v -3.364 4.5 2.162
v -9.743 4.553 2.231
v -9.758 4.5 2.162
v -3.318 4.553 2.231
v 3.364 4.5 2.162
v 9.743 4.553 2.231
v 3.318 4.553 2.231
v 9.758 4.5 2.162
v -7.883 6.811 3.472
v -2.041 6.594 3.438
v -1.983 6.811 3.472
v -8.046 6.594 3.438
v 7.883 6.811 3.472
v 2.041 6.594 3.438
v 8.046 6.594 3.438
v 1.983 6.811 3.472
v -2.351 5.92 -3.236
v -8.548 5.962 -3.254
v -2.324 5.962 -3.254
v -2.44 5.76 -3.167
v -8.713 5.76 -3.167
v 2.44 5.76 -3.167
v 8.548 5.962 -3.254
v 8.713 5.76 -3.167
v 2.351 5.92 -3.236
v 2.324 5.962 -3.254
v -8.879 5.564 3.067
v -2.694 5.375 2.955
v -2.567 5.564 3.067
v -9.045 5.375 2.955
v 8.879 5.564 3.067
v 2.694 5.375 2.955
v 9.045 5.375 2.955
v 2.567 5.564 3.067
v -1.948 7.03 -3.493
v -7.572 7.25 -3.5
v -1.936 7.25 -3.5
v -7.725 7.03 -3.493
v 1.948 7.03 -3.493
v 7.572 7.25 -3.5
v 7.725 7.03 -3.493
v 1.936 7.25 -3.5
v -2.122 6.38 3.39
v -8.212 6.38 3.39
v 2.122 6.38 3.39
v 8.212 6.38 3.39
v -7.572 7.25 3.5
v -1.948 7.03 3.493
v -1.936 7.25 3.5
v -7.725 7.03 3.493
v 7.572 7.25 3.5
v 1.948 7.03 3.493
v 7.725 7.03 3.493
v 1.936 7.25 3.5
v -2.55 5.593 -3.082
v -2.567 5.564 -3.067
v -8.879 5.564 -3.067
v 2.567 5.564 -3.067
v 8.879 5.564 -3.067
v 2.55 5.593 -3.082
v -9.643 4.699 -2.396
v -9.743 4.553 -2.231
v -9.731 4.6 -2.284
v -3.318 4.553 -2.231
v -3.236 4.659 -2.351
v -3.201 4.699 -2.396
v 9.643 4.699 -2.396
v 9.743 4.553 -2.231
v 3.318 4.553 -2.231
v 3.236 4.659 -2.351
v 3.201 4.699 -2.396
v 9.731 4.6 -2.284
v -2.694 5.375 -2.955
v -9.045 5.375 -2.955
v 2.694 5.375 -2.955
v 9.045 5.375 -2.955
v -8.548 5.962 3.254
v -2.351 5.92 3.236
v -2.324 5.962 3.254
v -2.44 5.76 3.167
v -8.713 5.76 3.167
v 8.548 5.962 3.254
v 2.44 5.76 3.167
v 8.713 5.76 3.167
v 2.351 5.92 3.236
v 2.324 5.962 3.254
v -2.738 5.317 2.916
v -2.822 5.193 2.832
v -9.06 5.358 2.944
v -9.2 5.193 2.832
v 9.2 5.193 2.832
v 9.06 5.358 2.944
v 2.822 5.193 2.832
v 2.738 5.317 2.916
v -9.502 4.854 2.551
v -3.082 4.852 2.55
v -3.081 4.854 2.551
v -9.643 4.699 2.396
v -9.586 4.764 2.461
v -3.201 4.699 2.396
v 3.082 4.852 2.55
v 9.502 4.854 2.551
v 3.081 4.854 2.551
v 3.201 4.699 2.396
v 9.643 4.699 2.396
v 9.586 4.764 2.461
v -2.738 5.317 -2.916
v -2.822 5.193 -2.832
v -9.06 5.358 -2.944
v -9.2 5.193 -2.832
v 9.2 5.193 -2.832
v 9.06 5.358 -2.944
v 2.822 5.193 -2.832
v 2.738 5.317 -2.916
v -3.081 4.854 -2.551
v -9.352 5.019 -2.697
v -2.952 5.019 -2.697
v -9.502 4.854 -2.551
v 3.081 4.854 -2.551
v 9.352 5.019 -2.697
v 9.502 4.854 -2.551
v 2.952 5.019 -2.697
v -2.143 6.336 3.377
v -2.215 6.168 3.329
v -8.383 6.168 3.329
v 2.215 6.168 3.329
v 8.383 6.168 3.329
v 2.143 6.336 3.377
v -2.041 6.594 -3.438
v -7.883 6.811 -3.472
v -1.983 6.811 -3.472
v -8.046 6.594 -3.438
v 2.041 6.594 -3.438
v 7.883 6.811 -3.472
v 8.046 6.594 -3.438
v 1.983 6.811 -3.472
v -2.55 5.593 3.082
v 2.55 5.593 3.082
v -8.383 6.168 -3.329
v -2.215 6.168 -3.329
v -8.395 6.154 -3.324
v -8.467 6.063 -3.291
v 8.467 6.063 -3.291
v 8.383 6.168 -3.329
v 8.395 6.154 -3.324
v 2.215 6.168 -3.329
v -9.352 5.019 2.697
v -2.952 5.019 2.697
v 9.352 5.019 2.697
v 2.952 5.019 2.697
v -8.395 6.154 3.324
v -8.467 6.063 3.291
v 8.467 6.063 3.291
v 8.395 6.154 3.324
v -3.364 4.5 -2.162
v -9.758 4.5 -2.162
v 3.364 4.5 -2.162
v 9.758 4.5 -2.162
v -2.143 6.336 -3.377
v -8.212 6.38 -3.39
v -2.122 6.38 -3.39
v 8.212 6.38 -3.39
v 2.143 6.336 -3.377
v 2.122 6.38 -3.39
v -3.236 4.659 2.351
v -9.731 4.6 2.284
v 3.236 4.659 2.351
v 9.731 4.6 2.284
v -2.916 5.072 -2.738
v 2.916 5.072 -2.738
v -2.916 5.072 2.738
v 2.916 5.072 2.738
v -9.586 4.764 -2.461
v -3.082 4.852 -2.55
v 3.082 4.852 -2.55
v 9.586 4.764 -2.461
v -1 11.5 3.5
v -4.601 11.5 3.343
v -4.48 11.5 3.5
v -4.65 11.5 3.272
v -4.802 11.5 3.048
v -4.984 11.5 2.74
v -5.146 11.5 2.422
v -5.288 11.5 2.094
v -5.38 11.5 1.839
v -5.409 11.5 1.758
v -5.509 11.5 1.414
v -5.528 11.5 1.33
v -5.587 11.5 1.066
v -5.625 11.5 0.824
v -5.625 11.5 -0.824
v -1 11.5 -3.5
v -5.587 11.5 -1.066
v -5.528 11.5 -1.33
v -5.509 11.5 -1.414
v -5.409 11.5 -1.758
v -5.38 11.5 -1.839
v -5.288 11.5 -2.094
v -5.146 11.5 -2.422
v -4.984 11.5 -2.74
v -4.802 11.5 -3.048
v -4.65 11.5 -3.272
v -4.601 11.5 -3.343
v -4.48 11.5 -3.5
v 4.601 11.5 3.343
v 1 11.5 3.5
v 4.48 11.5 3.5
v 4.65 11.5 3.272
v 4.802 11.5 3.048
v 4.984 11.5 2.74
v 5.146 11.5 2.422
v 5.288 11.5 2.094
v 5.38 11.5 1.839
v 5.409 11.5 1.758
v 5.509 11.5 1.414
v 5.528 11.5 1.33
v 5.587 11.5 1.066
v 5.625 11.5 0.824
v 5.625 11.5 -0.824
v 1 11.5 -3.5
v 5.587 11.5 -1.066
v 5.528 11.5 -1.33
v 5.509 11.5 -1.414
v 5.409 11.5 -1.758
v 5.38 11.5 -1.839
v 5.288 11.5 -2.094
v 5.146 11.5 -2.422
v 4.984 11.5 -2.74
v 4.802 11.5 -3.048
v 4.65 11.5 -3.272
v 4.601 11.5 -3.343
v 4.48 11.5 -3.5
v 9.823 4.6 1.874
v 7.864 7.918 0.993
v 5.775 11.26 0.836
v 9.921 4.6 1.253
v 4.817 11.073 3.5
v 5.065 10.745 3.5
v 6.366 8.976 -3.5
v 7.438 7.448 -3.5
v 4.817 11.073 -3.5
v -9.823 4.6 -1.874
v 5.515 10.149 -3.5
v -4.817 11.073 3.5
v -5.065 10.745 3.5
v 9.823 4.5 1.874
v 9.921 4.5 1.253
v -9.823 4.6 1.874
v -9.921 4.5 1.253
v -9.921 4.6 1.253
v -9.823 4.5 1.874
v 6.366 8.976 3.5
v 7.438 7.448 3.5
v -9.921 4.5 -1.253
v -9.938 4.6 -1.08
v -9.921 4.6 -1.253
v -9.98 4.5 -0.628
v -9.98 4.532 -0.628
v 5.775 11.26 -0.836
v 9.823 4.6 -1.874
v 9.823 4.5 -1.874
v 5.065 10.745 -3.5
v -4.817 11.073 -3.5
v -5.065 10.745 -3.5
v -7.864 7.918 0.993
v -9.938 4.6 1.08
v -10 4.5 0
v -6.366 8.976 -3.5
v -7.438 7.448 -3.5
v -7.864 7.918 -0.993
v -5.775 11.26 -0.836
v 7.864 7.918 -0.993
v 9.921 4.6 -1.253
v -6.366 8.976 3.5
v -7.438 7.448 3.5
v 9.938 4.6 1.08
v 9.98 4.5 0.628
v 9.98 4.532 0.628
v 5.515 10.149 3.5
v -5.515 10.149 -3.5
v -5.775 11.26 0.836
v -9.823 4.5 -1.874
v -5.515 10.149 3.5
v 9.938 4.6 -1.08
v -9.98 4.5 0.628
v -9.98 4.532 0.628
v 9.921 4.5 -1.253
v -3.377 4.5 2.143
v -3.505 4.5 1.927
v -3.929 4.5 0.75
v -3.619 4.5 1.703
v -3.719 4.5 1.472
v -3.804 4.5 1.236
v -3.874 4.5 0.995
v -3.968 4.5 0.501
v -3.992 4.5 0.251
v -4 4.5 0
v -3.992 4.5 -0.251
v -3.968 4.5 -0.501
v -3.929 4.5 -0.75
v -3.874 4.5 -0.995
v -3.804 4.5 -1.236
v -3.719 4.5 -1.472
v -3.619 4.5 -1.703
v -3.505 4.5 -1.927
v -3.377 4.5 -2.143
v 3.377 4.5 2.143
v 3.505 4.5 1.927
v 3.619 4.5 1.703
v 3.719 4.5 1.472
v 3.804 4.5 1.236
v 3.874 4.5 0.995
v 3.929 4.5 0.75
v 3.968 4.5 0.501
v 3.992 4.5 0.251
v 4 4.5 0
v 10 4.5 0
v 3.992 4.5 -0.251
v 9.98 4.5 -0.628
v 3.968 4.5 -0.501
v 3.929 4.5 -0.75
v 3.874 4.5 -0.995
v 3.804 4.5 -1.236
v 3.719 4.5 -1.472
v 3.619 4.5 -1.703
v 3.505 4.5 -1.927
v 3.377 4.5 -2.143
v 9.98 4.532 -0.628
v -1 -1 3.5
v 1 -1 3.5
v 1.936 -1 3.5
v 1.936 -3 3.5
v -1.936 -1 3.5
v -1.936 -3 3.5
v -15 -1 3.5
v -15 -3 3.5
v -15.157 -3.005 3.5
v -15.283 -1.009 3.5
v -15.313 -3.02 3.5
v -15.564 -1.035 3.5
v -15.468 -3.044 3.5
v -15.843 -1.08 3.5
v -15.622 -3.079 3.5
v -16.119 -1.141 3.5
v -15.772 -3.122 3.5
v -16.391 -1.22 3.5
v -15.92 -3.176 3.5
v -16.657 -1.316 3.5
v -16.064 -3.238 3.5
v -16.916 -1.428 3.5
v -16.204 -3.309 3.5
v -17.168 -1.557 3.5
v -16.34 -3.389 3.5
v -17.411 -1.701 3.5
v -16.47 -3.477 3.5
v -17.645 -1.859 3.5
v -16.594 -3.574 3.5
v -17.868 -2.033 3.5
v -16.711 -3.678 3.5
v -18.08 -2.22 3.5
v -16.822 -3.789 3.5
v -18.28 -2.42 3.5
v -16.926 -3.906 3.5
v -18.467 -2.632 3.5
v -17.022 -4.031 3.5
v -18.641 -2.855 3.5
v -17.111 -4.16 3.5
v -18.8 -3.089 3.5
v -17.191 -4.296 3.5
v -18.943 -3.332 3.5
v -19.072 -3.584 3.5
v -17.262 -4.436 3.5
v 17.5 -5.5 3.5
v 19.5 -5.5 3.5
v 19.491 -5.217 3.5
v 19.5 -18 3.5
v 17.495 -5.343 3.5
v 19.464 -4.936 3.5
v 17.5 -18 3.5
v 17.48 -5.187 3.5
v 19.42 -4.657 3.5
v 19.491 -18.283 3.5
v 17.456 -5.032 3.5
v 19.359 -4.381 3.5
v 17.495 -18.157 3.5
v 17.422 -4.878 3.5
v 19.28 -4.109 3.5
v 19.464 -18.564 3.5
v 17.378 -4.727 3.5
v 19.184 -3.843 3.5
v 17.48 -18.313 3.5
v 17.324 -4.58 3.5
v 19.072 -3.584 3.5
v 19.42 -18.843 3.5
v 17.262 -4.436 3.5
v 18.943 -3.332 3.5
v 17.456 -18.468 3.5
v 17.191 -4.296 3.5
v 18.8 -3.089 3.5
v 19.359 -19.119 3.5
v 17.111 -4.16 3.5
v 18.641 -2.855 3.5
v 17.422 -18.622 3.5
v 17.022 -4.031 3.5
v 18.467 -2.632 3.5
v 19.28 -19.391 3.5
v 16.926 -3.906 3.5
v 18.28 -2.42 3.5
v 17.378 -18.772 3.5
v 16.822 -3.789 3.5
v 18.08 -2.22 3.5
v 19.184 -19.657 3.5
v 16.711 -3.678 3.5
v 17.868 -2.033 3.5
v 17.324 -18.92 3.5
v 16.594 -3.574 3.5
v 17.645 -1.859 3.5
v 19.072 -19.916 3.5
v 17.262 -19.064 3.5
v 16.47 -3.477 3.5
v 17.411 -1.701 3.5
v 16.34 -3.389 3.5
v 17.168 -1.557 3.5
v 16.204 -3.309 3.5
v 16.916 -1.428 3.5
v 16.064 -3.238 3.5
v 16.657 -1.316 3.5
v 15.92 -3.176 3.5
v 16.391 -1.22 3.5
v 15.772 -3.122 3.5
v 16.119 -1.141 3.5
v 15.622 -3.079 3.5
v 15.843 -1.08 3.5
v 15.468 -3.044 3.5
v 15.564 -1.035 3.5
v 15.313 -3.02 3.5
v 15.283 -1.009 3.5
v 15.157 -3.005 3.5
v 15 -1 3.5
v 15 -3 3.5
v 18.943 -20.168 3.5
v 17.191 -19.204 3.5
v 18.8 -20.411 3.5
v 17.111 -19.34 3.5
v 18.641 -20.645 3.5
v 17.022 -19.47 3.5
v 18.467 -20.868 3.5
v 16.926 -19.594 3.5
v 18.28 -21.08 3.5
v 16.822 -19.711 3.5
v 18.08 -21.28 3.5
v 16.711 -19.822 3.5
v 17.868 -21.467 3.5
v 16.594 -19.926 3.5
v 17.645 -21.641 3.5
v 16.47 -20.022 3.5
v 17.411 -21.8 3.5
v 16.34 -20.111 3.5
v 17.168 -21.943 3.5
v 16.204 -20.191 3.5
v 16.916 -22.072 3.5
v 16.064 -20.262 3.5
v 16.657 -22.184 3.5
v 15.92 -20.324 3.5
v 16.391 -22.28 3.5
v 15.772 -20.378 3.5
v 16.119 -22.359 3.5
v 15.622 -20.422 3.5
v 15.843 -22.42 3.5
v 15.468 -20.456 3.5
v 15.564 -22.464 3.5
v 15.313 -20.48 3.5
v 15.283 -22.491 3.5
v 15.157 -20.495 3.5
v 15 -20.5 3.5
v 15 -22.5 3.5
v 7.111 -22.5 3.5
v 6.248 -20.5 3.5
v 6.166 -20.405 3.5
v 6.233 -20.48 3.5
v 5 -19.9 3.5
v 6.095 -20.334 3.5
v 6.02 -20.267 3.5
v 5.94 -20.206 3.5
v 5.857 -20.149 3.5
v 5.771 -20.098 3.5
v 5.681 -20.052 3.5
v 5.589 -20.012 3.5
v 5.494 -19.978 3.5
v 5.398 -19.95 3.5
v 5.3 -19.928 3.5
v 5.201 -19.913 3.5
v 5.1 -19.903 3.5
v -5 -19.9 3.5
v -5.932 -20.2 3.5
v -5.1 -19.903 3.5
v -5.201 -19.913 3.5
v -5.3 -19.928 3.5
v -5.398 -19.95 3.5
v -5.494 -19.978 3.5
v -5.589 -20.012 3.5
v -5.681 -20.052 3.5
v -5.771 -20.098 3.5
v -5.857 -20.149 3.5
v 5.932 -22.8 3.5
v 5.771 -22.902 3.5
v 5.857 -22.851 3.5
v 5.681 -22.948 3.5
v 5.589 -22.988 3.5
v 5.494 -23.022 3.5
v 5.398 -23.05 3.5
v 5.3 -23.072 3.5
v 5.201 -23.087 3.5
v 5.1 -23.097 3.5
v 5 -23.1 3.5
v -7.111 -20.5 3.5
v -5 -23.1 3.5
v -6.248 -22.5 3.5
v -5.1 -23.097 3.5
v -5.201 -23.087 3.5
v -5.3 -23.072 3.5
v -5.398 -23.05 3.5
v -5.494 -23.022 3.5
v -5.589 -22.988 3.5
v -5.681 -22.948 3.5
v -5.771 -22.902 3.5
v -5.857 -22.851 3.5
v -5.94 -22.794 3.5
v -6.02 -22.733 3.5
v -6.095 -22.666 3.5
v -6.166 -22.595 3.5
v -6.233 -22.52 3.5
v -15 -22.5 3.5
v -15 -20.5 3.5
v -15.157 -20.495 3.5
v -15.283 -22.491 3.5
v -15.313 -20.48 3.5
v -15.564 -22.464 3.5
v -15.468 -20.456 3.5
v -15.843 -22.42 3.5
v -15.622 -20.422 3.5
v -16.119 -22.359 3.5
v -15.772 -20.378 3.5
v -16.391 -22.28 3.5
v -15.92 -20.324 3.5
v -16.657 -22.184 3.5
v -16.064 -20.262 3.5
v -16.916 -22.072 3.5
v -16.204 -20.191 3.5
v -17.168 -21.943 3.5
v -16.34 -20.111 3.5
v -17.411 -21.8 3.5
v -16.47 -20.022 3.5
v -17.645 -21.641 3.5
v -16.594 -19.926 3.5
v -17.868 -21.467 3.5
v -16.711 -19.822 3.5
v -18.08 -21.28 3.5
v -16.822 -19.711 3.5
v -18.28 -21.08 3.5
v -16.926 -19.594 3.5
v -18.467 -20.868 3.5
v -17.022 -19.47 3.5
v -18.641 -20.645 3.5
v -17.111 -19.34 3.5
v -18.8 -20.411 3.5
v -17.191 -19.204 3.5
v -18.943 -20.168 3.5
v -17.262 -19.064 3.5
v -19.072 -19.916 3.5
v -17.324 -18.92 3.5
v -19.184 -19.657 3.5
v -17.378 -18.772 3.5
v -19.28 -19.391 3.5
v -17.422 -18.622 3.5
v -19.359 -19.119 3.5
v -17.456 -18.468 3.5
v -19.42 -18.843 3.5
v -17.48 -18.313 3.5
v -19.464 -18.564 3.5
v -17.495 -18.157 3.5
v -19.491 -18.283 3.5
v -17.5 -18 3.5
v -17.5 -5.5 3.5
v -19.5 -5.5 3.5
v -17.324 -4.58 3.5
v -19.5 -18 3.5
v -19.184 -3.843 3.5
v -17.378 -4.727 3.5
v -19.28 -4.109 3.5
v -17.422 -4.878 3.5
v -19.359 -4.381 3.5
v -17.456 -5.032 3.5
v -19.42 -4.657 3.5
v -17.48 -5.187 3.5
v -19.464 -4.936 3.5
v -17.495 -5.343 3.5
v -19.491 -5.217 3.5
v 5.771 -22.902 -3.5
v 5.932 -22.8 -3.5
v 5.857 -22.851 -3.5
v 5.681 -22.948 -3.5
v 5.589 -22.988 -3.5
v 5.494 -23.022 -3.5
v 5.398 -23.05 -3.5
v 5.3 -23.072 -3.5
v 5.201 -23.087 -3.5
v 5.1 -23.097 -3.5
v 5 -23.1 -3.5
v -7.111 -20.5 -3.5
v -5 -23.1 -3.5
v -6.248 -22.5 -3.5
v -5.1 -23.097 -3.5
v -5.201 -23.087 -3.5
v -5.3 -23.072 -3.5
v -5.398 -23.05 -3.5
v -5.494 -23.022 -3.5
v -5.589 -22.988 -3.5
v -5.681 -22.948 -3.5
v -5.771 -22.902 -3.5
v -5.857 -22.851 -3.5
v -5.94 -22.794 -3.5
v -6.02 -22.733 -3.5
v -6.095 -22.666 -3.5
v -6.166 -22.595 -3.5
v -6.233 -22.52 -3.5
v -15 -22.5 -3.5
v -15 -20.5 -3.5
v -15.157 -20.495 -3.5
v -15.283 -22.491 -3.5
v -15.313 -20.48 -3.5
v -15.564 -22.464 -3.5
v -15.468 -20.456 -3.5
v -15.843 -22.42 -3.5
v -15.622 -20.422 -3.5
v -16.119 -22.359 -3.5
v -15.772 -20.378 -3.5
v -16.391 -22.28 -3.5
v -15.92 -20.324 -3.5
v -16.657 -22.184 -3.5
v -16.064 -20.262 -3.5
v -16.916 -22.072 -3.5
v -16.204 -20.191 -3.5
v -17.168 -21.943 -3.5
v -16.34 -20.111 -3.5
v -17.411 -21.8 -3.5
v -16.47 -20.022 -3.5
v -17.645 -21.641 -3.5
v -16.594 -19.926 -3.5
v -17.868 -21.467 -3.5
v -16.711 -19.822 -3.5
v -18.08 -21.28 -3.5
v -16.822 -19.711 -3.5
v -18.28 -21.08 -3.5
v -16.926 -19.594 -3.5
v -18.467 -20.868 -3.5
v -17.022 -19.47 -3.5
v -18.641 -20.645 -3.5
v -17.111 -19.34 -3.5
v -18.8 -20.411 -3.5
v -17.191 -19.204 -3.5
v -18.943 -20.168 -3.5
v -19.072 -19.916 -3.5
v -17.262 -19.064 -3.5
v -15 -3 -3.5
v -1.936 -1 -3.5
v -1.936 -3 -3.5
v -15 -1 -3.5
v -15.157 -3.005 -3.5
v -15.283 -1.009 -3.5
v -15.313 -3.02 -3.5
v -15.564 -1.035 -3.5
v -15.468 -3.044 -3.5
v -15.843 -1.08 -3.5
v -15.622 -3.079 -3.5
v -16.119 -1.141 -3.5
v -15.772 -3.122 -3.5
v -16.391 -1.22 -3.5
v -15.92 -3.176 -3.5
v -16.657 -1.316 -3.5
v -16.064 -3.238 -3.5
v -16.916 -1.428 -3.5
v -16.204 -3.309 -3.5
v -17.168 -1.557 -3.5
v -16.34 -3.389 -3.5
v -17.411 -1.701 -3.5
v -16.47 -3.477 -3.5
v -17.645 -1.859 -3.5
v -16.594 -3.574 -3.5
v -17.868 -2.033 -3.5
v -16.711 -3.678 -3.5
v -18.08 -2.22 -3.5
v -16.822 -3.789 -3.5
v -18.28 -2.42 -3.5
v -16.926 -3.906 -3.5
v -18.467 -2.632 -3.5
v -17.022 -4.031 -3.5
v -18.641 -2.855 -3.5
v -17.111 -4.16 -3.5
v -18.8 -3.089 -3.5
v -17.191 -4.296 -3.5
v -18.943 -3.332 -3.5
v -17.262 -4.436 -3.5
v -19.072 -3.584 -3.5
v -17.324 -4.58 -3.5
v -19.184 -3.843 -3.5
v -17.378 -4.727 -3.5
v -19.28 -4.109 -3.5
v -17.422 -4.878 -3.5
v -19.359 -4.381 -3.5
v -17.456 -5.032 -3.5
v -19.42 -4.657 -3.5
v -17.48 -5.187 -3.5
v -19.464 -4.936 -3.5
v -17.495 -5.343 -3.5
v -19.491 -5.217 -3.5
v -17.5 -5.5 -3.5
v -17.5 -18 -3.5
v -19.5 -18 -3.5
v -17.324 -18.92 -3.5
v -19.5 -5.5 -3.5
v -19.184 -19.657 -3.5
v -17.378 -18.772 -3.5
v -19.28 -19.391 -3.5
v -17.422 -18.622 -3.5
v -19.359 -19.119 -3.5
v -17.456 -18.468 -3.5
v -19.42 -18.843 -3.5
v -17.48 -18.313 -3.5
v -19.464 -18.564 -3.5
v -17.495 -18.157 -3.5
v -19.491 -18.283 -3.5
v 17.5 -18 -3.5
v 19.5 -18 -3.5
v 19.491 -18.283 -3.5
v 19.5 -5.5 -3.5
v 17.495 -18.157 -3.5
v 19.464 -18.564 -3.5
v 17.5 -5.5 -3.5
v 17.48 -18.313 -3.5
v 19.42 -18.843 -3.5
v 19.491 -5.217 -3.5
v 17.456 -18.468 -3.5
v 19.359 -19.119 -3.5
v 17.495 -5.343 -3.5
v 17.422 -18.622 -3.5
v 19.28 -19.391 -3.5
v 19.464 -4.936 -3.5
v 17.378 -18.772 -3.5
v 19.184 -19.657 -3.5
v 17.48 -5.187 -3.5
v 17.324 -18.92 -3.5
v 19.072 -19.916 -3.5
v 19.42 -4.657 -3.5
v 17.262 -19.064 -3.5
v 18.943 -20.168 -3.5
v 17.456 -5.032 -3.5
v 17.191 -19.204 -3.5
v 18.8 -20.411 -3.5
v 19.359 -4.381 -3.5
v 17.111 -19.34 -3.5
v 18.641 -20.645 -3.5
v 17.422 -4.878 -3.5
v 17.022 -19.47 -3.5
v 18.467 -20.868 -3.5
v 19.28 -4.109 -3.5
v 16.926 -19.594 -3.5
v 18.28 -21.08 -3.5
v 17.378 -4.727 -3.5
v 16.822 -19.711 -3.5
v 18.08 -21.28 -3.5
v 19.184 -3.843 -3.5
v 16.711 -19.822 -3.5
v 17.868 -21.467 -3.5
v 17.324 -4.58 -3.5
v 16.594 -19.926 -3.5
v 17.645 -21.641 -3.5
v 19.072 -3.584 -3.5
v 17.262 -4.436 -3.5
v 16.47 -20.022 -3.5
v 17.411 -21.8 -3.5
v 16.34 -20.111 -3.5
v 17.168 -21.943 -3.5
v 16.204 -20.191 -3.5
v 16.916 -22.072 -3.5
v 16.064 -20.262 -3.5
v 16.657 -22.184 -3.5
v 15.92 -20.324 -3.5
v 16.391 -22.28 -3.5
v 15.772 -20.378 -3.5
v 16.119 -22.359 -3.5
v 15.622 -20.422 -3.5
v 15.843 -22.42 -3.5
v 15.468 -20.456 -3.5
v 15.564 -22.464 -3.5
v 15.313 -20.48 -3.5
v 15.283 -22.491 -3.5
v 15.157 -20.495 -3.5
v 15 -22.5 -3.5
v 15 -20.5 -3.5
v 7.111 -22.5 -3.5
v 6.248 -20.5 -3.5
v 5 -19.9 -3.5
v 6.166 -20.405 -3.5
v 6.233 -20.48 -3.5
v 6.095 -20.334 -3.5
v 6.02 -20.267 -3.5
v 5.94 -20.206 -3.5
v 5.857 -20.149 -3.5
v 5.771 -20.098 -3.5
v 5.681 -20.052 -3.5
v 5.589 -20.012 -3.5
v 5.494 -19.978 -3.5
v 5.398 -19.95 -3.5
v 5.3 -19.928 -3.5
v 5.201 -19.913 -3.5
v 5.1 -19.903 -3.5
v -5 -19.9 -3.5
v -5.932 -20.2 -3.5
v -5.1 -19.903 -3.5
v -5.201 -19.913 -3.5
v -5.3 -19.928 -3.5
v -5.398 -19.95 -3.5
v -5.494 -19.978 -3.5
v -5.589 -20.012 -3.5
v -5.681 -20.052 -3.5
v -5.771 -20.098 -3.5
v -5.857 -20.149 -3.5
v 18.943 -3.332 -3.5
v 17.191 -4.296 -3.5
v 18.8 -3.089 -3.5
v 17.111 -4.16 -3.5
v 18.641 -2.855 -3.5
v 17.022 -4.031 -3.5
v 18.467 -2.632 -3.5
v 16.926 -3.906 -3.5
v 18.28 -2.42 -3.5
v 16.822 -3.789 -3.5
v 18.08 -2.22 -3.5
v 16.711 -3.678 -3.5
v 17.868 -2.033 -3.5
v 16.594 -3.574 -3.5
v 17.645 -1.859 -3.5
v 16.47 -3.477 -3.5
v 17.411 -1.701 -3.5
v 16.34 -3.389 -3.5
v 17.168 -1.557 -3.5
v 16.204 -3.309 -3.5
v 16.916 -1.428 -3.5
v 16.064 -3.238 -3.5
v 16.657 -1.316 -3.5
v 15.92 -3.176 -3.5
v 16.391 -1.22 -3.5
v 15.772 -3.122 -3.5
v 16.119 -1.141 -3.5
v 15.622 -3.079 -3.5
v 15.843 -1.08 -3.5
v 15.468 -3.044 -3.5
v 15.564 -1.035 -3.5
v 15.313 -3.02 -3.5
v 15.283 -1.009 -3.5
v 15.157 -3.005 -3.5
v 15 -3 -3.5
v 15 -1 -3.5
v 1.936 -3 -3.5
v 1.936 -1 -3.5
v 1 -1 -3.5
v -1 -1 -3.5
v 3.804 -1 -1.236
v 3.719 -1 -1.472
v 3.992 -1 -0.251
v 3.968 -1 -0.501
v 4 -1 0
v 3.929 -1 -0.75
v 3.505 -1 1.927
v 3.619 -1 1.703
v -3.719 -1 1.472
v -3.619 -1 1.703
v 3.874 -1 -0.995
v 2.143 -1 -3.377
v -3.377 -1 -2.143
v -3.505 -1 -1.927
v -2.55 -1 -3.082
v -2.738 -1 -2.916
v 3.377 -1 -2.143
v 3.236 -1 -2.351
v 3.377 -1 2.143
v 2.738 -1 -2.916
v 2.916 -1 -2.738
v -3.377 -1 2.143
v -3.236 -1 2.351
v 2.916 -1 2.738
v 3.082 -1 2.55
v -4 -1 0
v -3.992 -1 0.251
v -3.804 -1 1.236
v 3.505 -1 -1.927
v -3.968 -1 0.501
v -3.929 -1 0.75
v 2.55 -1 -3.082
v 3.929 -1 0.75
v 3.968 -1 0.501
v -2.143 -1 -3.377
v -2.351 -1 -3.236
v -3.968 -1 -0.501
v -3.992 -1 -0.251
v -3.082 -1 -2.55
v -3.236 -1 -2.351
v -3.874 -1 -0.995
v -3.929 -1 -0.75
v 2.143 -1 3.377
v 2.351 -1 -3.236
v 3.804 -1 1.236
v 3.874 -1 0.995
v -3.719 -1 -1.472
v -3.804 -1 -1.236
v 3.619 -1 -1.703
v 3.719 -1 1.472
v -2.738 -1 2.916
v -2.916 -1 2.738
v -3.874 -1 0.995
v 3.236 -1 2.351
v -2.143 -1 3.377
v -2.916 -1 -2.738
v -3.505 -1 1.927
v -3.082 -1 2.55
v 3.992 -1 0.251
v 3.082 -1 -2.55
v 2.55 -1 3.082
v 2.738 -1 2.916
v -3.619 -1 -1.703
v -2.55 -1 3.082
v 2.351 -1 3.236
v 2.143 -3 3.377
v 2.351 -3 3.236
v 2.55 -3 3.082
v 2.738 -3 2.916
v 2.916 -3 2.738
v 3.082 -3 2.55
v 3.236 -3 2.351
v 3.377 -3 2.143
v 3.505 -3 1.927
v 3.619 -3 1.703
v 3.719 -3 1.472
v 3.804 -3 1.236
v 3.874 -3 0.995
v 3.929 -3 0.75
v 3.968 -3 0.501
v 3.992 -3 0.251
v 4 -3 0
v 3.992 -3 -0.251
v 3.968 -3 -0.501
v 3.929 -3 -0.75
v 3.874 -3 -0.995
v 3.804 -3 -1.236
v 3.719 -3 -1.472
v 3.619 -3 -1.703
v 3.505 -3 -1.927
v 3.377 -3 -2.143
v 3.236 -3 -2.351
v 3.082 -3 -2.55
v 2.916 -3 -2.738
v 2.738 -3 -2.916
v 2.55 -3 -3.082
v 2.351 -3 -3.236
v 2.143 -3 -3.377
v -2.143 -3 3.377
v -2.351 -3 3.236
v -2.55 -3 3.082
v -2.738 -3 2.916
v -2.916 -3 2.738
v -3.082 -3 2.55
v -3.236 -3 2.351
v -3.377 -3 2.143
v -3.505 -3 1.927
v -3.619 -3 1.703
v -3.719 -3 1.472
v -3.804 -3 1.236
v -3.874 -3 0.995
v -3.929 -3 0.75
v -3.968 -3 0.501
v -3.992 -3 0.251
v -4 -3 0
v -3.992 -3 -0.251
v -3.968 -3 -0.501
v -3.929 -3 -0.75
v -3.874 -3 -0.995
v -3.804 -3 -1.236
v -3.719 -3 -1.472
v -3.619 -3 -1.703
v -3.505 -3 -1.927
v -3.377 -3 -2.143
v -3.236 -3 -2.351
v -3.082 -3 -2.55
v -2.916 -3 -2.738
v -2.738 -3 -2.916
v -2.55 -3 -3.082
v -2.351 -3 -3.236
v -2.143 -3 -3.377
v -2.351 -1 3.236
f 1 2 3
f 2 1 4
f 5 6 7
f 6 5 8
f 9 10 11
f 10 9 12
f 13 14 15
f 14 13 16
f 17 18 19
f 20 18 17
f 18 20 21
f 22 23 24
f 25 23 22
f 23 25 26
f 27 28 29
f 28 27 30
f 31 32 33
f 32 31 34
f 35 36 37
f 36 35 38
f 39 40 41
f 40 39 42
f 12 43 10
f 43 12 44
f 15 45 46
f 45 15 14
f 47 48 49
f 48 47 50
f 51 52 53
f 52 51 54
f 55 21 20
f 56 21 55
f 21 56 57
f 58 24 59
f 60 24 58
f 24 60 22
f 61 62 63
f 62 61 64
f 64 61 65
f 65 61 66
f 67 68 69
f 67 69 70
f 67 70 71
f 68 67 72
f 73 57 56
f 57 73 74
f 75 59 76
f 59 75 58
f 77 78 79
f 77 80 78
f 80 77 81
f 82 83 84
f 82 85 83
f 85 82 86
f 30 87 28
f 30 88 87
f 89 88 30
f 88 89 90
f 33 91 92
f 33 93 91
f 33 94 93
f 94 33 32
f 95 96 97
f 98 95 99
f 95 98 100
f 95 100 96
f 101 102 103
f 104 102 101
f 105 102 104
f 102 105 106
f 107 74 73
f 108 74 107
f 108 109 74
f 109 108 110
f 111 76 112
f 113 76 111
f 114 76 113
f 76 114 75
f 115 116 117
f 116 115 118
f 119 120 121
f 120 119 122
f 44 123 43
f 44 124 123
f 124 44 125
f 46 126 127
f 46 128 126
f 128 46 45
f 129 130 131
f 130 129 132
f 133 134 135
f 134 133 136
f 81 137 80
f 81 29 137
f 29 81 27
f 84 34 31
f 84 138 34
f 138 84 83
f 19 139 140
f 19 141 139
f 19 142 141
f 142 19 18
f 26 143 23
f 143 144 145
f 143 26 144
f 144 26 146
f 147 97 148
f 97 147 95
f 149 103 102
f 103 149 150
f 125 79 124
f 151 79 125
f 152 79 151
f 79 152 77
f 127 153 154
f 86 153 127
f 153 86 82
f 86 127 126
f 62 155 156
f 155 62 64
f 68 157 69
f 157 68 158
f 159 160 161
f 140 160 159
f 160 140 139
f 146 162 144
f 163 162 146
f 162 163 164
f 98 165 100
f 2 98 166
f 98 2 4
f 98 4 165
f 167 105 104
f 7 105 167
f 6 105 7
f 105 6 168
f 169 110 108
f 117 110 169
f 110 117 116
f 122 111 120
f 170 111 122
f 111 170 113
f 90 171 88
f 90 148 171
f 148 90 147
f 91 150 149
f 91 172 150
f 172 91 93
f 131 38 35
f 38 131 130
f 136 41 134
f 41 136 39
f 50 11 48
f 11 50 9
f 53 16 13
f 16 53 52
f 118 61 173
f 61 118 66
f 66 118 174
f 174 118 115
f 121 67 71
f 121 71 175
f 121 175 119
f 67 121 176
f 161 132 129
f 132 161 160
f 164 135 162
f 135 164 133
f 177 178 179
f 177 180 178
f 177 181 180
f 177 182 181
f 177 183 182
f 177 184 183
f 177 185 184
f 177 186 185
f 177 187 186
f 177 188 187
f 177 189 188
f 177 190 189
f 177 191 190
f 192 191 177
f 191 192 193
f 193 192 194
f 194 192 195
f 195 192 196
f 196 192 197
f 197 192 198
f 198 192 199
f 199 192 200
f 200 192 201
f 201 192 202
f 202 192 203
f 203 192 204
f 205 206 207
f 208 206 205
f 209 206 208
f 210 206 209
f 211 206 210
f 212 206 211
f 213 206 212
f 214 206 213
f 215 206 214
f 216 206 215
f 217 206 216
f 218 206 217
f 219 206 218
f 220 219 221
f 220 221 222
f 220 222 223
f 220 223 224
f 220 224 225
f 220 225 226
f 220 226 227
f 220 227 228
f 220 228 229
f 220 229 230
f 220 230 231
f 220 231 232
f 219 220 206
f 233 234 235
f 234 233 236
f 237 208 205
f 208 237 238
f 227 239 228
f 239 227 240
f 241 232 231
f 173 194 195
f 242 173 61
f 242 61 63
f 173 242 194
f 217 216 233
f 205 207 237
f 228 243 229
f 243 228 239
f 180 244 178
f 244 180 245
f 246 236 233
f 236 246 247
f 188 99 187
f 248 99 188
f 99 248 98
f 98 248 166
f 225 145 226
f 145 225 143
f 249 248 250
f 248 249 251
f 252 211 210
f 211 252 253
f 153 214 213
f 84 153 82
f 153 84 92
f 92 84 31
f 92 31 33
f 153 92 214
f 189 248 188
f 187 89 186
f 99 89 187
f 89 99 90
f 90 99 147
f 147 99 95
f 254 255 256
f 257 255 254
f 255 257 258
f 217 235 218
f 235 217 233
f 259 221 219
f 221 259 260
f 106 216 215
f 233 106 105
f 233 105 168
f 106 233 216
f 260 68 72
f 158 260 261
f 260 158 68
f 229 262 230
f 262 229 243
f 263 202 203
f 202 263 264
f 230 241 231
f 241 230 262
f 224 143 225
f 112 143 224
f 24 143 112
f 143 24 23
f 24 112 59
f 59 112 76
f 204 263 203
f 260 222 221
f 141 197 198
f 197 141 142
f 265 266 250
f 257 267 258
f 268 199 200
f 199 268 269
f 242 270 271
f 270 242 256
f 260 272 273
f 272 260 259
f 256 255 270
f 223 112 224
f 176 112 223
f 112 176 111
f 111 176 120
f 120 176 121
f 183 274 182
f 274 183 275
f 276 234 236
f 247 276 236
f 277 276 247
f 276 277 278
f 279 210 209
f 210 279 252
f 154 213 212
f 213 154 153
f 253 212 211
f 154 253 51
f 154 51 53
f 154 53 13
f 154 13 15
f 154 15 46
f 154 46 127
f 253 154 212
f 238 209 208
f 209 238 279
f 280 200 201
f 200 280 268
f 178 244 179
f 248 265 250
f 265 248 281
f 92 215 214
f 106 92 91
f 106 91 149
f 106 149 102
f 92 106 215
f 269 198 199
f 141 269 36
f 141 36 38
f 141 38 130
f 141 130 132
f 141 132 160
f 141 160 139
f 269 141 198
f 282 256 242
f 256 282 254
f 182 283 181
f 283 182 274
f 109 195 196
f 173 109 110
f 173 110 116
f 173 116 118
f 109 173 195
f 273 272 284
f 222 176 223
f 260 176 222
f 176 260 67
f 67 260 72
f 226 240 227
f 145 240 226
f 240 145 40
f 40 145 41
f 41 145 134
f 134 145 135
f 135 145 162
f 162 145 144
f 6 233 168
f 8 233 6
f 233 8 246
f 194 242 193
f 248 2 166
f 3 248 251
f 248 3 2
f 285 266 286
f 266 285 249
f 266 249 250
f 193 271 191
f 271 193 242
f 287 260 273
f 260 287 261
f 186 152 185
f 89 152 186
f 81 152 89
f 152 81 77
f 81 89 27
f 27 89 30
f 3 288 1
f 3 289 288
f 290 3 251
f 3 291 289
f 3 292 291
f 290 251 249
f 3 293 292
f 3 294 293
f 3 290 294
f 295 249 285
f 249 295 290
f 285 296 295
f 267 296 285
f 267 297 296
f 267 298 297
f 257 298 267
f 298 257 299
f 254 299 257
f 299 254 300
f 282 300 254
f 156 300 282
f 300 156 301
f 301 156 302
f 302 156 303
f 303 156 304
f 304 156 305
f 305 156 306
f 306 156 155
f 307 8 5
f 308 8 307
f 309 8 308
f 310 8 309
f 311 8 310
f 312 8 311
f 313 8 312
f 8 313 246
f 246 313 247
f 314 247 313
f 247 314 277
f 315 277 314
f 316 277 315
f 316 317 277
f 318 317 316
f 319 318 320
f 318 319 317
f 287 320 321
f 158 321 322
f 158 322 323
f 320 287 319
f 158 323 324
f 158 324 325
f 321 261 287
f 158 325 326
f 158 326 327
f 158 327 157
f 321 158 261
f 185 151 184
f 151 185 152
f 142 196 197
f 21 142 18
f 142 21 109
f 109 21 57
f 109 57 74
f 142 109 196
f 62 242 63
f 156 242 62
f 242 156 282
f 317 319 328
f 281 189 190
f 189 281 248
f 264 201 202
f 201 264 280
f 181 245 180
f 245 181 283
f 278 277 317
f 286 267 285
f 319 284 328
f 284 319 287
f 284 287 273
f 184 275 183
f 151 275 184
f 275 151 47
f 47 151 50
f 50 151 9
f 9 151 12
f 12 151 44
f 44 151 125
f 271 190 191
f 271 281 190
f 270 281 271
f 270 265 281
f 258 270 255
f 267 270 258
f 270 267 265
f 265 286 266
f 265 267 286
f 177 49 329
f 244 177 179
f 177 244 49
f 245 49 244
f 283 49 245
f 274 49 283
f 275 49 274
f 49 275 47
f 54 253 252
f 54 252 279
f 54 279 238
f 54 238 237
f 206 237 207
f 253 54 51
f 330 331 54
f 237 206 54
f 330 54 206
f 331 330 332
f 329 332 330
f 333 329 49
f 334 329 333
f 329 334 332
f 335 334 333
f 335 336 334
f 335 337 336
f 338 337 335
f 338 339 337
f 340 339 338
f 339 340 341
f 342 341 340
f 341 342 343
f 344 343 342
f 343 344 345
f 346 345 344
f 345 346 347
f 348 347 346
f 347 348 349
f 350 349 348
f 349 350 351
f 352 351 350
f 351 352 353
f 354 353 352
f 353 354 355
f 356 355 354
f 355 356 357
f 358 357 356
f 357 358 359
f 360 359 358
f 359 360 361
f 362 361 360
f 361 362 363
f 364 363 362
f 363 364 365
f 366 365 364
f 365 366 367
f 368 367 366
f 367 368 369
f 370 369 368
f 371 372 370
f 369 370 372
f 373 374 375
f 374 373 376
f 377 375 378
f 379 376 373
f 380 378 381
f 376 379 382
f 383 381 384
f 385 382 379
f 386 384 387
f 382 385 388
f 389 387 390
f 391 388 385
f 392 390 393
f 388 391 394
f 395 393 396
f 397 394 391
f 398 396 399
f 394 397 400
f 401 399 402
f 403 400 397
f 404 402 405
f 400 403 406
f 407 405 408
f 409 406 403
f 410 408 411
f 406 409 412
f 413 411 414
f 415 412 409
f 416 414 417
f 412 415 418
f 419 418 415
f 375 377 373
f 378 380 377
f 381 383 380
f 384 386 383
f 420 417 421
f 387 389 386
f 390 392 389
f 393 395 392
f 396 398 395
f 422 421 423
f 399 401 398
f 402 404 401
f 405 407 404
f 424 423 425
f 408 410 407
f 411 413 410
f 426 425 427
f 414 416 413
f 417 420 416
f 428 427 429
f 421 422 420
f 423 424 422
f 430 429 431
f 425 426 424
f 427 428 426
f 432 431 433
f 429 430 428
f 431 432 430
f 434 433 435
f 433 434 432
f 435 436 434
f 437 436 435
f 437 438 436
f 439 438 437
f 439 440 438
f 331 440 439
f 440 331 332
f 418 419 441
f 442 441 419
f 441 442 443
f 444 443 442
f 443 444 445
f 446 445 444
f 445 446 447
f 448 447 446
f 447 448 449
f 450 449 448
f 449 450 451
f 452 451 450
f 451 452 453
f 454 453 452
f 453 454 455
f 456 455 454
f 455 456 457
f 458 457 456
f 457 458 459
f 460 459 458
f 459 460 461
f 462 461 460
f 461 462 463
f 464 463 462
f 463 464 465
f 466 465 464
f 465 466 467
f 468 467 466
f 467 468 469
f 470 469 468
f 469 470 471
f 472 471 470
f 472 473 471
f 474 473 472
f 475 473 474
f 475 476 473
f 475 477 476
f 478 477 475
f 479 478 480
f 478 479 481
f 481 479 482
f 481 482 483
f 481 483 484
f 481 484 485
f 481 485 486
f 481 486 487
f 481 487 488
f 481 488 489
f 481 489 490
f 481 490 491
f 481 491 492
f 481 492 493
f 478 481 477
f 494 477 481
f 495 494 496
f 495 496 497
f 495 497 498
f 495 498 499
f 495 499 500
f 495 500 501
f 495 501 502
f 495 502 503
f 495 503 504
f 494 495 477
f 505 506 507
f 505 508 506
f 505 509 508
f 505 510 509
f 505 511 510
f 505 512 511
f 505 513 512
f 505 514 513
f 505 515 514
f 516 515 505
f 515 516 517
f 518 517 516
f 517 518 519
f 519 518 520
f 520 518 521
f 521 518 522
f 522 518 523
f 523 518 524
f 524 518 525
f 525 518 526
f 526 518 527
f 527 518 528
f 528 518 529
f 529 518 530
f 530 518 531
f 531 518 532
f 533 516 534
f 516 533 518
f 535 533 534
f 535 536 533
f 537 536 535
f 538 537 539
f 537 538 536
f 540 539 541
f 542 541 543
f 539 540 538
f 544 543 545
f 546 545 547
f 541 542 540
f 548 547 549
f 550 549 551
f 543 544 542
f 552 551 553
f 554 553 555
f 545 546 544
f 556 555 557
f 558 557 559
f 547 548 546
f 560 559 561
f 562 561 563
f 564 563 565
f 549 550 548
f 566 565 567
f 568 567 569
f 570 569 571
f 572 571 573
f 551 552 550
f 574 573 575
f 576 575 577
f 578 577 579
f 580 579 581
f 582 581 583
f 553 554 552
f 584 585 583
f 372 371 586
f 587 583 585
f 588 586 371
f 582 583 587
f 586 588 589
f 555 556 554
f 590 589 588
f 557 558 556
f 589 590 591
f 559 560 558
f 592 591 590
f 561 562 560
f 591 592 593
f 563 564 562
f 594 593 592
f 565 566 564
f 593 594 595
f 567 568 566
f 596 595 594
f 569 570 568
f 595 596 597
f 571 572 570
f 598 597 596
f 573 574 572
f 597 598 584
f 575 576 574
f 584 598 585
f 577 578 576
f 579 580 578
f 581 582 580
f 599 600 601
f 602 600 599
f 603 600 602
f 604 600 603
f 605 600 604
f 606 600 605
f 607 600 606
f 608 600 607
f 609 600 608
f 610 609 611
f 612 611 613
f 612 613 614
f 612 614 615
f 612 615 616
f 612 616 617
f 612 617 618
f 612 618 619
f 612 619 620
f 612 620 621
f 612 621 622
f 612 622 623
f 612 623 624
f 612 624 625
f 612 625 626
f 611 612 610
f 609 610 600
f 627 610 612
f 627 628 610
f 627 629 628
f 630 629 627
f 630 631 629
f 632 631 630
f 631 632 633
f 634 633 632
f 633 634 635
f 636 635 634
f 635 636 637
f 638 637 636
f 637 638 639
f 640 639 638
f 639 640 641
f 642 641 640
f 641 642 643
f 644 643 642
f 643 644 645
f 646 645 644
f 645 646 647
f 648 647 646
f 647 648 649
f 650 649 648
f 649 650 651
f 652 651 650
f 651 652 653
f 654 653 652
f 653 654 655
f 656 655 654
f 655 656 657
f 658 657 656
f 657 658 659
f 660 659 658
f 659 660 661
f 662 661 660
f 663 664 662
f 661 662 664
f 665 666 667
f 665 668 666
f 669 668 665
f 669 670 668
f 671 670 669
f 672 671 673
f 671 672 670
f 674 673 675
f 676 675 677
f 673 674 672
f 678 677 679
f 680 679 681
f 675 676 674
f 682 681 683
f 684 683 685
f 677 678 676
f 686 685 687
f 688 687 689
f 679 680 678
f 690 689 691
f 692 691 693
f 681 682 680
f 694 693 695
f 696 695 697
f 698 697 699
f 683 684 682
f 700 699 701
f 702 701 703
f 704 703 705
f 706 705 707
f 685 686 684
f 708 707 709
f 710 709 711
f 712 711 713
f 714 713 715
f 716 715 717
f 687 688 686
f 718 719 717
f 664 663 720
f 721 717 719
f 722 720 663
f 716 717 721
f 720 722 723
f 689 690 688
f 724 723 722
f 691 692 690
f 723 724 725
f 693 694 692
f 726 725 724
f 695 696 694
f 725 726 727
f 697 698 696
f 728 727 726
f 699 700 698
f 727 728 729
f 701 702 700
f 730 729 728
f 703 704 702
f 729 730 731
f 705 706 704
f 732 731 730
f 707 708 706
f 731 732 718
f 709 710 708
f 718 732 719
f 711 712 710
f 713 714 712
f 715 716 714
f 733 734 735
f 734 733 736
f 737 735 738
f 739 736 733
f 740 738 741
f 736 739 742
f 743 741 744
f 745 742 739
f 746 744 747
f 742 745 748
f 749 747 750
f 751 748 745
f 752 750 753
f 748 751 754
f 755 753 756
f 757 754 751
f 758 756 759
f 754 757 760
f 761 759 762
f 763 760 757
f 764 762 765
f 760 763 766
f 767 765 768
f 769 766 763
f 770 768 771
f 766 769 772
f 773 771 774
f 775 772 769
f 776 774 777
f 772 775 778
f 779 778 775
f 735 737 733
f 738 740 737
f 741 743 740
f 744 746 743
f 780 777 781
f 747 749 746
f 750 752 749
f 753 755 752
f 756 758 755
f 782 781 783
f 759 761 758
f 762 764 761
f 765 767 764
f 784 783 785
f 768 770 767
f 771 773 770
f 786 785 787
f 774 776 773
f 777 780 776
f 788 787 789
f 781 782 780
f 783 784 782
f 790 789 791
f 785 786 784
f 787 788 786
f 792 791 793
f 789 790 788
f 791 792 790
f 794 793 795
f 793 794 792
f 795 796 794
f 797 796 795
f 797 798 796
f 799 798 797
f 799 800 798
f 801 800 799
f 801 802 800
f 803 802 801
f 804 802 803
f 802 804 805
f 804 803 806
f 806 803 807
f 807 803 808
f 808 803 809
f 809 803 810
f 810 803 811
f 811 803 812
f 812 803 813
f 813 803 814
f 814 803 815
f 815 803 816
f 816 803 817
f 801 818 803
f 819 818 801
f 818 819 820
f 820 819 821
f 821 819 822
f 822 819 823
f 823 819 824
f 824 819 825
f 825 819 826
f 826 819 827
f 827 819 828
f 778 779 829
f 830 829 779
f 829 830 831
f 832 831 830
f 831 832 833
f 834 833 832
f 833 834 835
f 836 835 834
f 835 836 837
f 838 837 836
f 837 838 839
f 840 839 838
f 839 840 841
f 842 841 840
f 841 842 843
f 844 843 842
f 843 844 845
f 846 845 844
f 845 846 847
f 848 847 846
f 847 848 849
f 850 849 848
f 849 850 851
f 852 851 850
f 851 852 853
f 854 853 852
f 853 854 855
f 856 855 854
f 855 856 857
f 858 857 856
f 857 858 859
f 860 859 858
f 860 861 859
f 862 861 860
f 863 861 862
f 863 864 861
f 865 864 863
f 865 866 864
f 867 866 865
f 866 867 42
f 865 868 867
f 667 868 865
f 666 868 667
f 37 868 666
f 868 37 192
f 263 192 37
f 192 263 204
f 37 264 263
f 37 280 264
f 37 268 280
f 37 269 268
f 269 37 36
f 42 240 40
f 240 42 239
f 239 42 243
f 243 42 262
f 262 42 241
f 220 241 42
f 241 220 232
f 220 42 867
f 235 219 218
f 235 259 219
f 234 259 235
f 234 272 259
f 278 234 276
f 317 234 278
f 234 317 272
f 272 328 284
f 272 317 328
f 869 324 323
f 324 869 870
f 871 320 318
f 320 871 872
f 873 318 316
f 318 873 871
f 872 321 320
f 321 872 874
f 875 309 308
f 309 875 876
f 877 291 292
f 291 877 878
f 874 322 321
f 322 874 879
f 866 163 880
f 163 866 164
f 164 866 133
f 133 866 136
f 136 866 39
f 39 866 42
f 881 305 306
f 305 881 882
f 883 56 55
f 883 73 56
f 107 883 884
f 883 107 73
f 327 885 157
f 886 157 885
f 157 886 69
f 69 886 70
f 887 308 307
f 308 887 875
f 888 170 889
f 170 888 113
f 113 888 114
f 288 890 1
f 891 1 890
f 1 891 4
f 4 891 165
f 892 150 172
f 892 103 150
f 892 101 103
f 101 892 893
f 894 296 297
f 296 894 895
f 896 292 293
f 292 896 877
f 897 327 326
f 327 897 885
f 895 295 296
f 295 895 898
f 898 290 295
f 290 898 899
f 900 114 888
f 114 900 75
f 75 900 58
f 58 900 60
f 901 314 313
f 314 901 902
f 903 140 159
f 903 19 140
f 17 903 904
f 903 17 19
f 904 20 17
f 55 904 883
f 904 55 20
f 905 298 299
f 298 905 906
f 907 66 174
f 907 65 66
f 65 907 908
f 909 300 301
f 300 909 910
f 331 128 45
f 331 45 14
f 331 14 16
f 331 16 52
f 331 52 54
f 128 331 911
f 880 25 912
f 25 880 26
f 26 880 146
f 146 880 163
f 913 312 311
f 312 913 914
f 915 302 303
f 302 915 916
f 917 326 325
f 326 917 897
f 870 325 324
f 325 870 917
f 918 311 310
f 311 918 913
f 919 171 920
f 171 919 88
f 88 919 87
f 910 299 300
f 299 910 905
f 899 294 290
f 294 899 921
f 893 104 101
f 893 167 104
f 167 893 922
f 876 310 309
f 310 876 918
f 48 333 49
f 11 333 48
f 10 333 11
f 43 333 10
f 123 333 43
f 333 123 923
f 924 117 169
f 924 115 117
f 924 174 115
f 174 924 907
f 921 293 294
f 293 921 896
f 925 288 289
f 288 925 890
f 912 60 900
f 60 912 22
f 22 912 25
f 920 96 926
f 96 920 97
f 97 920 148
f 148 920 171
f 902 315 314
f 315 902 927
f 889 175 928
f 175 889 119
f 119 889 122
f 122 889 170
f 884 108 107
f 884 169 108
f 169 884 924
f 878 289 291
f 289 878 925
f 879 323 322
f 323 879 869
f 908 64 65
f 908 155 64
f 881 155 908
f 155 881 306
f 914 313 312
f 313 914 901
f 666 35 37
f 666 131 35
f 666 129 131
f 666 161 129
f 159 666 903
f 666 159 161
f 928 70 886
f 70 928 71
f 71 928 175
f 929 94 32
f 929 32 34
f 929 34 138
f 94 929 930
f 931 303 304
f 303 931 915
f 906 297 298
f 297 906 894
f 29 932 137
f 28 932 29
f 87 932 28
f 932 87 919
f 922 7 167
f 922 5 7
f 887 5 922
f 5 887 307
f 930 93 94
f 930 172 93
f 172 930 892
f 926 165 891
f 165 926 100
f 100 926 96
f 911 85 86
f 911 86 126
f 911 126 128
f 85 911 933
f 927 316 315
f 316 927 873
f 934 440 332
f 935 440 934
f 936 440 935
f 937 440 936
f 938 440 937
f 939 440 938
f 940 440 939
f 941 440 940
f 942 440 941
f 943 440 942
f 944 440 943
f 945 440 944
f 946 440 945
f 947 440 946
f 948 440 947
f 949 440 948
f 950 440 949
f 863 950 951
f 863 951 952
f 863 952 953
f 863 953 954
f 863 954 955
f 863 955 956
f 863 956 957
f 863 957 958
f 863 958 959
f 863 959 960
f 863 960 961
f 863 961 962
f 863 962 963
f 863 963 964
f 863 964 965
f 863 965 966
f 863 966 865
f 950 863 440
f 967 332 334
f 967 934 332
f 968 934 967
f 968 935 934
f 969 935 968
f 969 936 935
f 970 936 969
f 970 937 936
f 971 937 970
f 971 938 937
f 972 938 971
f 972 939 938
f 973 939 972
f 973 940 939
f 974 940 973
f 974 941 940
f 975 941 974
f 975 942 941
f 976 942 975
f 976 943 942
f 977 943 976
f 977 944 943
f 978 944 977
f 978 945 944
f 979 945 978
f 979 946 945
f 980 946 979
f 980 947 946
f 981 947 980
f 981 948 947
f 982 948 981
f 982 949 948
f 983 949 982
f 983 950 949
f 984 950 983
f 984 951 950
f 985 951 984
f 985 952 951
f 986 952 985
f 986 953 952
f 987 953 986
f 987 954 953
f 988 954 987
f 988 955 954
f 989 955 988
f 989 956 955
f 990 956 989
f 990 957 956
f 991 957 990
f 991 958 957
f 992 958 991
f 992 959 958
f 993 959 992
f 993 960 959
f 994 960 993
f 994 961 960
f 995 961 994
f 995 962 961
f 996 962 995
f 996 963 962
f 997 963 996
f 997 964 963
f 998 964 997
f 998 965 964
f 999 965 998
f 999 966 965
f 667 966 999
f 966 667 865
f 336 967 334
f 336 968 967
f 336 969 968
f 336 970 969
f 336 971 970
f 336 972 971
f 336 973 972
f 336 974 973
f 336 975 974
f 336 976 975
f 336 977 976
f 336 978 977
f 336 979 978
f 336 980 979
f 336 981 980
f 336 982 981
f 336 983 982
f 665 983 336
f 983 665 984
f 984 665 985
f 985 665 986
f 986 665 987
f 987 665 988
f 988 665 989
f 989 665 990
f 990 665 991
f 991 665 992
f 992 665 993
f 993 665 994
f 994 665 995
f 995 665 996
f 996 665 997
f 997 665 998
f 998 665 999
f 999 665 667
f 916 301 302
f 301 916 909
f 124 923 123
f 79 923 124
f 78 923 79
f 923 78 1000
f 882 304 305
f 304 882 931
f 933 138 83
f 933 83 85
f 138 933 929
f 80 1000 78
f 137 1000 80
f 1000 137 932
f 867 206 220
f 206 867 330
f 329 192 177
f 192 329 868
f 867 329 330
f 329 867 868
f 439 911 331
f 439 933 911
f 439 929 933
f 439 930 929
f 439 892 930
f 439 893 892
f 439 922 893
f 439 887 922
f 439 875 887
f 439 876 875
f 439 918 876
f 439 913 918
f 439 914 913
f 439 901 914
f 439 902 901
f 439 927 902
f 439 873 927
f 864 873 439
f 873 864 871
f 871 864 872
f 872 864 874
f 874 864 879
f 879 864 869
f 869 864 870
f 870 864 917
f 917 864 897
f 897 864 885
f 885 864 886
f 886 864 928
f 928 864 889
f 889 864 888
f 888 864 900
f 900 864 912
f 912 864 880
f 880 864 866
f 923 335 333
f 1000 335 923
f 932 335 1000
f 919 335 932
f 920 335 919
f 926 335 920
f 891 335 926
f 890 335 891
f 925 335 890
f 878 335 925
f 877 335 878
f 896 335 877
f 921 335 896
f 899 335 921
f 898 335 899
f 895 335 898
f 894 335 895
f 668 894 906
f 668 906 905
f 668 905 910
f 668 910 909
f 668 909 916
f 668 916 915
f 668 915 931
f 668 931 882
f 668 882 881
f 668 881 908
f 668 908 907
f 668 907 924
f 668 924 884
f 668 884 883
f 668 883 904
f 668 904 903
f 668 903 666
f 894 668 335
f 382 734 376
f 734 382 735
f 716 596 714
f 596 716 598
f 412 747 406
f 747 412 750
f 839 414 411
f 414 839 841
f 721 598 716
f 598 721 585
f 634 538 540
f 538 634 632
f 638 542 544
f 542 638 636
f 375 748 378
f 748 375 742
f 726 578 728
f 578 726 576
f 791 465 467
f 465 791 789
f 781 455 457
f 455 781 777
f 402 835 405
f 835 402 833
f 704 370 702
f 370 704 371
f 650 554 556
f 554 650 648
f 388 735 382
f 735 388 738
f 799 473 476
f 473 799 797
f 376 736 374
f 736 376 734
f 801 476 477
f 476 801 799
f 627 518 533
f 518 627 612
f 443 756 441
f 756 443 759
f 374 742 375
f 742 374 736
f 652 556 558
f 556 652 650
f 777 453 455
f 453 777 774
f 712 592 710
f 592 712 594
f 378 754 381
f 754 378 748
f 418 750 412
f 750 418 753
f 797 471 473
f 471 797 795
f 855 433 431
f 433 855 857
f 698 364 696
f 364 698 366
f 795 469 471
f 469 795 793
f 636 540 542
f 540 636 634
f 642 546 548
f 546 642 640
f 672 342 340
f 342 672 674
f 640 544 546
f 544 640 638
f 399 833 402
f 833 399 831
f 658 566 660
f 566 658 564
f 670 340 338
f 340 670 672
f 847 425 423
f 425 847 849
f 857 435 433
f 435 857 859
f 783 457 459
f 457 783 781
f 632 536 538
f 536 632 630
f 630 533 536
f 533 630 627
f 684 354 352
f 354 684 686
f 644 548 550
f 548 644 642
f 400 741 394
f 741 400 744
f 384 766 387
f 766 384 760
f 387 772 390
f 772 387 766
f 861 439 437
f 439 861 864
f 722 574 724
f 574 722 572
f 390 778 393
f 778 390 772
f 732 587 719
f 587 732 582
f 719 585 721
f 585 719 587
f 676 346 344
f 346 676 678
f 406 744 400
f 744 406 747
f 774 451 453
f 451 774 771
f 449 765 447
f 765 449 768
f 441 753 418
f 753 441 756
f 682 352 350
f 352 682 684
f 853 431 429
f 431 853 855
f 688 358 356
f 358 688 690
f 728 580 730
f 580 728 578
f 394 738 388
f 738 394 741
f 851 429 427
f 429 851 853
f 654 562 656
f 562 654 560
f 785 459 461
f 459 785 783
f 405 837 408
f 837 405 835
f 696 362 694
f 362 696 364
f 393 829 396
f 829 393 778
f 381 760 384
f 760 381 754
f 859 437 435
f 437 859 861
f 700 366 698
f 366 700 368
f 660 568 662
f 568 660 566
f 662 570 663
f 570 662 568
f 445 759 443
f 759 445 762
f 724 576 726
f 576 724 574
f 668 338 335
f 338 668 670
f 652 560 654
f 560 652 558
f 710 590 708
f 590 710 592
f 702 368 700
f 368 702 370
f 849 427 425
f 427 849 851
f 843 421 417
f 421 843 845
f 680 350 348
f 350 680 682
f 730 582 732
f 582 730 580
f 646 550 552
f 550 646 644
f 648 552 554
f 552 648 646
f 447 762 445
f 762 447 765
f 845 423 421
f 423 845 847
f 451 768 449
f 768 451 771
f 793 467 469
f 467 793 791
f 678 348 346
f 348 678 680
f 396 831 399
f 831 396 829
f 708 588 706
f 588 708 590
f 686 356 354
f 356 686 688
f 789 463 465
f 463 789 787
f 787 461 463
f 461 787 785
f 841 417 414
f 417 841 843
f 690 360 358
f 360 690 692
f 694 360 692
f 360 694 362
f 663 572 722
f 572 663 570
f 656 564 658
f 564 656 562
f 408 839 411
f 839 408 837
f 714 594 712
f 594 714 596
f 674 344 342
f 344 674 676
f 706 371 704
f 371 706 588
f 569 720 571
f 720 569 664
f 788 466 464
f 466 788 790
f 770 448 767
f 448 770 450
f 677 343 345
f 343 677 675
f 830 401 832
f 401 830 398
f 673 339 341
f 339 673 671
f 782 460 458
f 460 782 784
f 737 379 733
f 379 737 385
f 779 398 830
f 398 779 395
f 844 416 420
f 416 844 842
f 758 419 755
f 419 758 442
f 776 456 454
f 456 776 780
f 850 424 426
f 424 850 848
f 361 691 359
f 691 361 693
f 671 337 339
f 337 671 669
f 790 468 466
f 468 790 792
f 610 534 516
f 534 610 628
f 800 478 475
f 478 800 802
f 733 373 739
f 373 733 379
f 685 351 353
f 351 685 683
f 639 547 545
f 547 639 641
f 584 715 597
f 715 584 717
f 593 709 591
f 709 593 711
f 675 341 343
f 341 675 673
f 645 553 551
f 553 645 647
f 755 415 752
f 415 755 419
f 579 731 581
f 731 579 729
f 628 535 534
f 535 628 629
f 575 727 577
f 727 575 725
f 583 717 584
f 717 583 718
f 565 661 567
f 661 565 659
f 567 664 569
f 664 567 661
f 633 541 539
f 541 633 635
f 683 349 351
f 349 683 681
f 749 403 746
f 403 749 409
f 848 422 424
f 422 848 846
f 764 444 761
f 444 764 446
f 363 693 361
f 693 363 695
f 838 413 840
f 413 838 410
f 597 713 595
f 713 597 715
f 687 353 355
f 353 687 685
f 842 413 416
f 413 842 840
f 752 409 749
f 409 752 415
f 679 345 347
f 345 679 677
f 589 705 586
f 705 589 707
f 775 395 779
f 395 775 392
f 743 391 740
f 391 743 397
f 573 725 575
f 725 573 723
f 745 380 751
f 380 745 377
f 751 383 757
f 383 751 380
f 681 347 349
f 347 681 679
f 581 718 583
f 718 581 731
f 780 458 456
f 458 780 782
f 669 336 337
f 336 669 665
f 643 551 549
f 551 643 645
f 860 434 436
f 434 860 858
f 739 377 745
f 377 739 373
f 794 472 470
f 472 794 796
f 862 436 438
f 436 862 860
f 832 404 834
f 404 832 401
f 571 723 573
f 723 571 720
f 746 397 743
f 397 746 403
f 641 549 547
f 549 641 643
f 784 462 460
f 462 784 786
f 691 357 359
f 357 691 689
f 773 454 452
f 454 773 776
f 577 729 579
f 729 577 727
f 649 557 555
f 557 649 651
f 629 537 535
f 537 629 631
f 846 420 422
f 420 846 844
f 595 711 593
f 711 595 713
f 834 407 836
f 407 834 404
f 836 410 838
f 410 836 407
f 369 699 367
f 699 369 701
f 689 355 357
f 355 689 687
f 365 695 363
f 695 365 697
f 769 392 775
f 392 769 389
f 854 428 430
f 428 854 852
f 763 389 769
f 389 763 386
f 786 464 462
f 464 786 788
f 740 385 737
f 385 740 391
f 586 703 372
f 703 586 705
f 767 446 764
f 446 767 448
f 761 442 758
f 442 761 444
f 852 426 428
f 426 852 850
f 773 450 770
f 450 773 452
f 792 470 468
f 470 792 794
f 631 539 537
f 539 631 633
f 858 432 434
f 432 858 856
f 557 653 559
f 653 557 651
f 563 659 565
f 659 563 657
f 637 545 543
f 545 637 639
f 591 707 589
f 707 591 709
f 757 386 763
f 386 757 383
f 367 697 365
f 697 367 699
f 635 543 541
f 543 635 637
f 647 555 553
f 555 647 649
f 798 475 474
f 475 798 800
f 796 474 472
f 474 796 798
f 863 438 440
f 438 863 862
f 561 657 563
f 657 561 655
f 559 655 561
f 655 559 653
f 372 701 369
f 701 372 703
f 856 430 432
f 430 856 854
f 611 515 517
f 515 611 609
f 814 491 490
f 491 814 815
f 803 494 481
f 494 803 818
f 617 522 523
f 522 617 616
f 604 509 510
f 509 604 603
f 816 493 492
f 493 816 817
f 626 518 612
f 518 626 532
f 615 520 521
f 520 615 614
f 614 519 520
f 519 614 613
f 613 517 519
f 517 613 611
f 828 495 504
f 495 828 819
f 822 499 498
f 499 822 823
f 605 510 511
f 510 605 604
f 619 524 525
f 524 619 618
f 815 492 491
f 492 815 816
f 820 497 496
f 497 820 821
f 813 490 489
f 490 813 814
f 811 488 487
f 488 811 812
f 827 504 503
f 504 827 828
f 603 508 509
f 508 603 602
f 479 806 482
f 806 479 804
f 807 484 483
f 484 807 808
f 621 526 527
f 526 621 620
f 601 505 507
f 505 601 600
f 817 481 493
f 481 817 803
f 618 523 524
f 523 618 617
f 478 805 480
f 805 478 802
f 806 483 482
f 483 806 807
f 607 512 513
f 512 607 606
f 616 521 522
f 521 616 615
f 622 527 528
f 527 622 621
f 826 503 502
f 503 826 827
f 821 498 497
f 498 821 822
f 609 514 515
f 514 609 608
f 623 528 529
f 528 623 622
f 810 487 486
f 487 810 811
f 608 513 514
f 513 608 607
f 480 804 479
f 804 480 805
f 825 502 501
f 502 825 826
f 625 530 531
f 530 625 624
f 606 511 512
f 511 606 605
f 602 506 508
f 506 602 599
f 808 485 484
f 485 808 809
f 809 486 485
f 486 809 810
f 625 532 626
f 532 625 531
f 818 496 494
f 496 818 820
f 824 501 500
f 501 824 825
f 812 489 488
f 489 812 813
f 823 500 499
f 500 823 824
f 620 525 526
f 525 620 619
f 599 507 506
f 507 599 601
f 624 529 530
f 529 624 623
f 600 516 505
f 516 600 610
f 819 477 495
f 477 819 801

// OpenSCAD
$fn=100;
/*
    Parametric Cable Hooks For Tslot Mounting
    By Brian Khuu (2020)
    
    Got a desk with tslot rails, would be nice to mount cable on it...
    
    Inspired by https://www.thingiverse.com/thing:2676595 "V-Slot Cable Clips by pekcitron November 30, 2017"
*/

/* [Tslot Spec] */
// CenterDepth
tslot_centerdepth = 5+0.5;
// CenterWidth
tslot_centerwidth = 8; // Gap to slot the clip though
// For the wedge... its based on a 4040mm Tslot... so may need to modify polygon() in this script

/* [Clip Spec] */
// X Width
clipx = 35;
// Y Width
clipy = 15;
// Clip Rounding Diameter
hookdia=5;
// Clip Width
hookwidth=7;
// Thickness
hookthickness=2;

/* [Tslot Model] */
model_slot_gap = 10;
model_slot_side = 15;

translate([0, -1, 0])
union()
{
    difference()
    {
        union()
        {
            // Tslot Mount Inner
            translate([0, tslot_centerdepth, 0])
                intersection()
                {
                    heightlim=7;
                    linear_extrude(height = hookwidth, center = true)
                        polygon(points=[[-10,0],[-5,8],[5,8],[10,0]]);
                    rotate([-90,0,0])
                        intersection()
                        {
                            hull()
                            {
                                translate([0,0,0]) cylinder(r=10, h=0.1);
                                translate([0,0,8]) cylinder(r=5, h=0.1);
                            }
                            union()
                            {
                                translate([0,0,heightlim/2+tslot_centerdepth/4]) 
                                    cube([20,20,heightlim-tslot_centerdepth/2], center = true);
                                intersection()
                                {
                                    rotate([0,90,0])
                                        translate([-tslot_centerdepth/2,0,0]) 
                                        cylinder(r=hookwidth/2, h=20, center = true);
                                    cube([20,20,hookwidth+1], center = true);
                                }
                            }
                        }
                }

            // tslot mount shaft
            translate([0, -hookthickness, 0])
            rotate([-90,0,0])
                intersection()
                {
                    cheight = tslot_centerdepth+hookthickness+hookwidth/2;
                    cylinder(r=tslot_centerwidth/2, h=cheight);
                    translate([0, 0, cheight/2])
                        cube([tslot_centerwidth+10, hookwidth, cheight], center=true);
                }
        }
        
        //
        translate([0, 100/2, 0])
            cube([2,100,100], center=true);

    }
 
    // Cable Loop
    translate([0, -hookdia/2-hookthickness, 0])
    union()
    {
       difference()
       {
            union()
            {
                difference()
                {
                    hull()
                    {
                        translate([clipx/2 - hookdia/2,0,0])
                            cylinder(r=hookdia/2+hookthickness, h=hookwidth, center=true);
                        translate([-clipx/2 +hookdia/2,0,0])
                            cylinder(r=hookdia/2+hookthickness, h=hookwidth, center=true);
                        translate([clipx/2 - hookdia/2,-clipy+hookdia/2,0])
                            cylinder(r=hookdia/2+hookthickness, h=hookwidth, center=true);
                        translate([-clipx/2 +hookdia/2,-clipy+hookdia/2,0])
                            cylinder(r=hookdia/2+hookthickness, h=hookwidth, center=true);
                    }
                    hull()
                    {
                        translate([clipx/2 - hookdia/2,0,0])
                            cylinder(r=hookdia/2, h=hookwidth+1, center=true);
                        translate([-clipx/2 +hookdia/2,0,0])
                            cylinder(r=hookdia/2, h=hookwidth+1, center=true);
                        translate([clipx/2 - hookdia/2,-clipy+hookdia/2,0])
                            cylinder(r=hookdia/2, h=hookwidth+1, center=true);
                        translate([-clipx/2 +hookdia/2,-clipy+hookdia/2,0])
                            cylinder(r=hookdia/2, h=hookwidth+1, center=true);
                    }
                }
                hull()
                {
                    translate([5,-clipy-hookdia/2+1.5,0])
                        cylinder(r=hookthickness*0.8, h=hookwidth, center=true);
                    translate([-5,-clipy-hookdia/2+1.5,0])
                        cylinder(r=hookthickness*0.8, h=hookwidth, center=true);
                }
            }
            // Cut
            #translate([0,-clipy-hookdia/2+1.5,0])
                rotate([0,0,80])
                cube([0.5,hookthickness+15,hookwidth+2], center=true);
        }
    }
}

%translate([model_slot_side/2+model_slot_gap/2,0,0]) cube([model_slot_side,0.1,100], center=true);
%translate([-model_slot_side/2-model_slot_gap/2,0,0]) cube([model_slot_side,0.1,100], center=true);
